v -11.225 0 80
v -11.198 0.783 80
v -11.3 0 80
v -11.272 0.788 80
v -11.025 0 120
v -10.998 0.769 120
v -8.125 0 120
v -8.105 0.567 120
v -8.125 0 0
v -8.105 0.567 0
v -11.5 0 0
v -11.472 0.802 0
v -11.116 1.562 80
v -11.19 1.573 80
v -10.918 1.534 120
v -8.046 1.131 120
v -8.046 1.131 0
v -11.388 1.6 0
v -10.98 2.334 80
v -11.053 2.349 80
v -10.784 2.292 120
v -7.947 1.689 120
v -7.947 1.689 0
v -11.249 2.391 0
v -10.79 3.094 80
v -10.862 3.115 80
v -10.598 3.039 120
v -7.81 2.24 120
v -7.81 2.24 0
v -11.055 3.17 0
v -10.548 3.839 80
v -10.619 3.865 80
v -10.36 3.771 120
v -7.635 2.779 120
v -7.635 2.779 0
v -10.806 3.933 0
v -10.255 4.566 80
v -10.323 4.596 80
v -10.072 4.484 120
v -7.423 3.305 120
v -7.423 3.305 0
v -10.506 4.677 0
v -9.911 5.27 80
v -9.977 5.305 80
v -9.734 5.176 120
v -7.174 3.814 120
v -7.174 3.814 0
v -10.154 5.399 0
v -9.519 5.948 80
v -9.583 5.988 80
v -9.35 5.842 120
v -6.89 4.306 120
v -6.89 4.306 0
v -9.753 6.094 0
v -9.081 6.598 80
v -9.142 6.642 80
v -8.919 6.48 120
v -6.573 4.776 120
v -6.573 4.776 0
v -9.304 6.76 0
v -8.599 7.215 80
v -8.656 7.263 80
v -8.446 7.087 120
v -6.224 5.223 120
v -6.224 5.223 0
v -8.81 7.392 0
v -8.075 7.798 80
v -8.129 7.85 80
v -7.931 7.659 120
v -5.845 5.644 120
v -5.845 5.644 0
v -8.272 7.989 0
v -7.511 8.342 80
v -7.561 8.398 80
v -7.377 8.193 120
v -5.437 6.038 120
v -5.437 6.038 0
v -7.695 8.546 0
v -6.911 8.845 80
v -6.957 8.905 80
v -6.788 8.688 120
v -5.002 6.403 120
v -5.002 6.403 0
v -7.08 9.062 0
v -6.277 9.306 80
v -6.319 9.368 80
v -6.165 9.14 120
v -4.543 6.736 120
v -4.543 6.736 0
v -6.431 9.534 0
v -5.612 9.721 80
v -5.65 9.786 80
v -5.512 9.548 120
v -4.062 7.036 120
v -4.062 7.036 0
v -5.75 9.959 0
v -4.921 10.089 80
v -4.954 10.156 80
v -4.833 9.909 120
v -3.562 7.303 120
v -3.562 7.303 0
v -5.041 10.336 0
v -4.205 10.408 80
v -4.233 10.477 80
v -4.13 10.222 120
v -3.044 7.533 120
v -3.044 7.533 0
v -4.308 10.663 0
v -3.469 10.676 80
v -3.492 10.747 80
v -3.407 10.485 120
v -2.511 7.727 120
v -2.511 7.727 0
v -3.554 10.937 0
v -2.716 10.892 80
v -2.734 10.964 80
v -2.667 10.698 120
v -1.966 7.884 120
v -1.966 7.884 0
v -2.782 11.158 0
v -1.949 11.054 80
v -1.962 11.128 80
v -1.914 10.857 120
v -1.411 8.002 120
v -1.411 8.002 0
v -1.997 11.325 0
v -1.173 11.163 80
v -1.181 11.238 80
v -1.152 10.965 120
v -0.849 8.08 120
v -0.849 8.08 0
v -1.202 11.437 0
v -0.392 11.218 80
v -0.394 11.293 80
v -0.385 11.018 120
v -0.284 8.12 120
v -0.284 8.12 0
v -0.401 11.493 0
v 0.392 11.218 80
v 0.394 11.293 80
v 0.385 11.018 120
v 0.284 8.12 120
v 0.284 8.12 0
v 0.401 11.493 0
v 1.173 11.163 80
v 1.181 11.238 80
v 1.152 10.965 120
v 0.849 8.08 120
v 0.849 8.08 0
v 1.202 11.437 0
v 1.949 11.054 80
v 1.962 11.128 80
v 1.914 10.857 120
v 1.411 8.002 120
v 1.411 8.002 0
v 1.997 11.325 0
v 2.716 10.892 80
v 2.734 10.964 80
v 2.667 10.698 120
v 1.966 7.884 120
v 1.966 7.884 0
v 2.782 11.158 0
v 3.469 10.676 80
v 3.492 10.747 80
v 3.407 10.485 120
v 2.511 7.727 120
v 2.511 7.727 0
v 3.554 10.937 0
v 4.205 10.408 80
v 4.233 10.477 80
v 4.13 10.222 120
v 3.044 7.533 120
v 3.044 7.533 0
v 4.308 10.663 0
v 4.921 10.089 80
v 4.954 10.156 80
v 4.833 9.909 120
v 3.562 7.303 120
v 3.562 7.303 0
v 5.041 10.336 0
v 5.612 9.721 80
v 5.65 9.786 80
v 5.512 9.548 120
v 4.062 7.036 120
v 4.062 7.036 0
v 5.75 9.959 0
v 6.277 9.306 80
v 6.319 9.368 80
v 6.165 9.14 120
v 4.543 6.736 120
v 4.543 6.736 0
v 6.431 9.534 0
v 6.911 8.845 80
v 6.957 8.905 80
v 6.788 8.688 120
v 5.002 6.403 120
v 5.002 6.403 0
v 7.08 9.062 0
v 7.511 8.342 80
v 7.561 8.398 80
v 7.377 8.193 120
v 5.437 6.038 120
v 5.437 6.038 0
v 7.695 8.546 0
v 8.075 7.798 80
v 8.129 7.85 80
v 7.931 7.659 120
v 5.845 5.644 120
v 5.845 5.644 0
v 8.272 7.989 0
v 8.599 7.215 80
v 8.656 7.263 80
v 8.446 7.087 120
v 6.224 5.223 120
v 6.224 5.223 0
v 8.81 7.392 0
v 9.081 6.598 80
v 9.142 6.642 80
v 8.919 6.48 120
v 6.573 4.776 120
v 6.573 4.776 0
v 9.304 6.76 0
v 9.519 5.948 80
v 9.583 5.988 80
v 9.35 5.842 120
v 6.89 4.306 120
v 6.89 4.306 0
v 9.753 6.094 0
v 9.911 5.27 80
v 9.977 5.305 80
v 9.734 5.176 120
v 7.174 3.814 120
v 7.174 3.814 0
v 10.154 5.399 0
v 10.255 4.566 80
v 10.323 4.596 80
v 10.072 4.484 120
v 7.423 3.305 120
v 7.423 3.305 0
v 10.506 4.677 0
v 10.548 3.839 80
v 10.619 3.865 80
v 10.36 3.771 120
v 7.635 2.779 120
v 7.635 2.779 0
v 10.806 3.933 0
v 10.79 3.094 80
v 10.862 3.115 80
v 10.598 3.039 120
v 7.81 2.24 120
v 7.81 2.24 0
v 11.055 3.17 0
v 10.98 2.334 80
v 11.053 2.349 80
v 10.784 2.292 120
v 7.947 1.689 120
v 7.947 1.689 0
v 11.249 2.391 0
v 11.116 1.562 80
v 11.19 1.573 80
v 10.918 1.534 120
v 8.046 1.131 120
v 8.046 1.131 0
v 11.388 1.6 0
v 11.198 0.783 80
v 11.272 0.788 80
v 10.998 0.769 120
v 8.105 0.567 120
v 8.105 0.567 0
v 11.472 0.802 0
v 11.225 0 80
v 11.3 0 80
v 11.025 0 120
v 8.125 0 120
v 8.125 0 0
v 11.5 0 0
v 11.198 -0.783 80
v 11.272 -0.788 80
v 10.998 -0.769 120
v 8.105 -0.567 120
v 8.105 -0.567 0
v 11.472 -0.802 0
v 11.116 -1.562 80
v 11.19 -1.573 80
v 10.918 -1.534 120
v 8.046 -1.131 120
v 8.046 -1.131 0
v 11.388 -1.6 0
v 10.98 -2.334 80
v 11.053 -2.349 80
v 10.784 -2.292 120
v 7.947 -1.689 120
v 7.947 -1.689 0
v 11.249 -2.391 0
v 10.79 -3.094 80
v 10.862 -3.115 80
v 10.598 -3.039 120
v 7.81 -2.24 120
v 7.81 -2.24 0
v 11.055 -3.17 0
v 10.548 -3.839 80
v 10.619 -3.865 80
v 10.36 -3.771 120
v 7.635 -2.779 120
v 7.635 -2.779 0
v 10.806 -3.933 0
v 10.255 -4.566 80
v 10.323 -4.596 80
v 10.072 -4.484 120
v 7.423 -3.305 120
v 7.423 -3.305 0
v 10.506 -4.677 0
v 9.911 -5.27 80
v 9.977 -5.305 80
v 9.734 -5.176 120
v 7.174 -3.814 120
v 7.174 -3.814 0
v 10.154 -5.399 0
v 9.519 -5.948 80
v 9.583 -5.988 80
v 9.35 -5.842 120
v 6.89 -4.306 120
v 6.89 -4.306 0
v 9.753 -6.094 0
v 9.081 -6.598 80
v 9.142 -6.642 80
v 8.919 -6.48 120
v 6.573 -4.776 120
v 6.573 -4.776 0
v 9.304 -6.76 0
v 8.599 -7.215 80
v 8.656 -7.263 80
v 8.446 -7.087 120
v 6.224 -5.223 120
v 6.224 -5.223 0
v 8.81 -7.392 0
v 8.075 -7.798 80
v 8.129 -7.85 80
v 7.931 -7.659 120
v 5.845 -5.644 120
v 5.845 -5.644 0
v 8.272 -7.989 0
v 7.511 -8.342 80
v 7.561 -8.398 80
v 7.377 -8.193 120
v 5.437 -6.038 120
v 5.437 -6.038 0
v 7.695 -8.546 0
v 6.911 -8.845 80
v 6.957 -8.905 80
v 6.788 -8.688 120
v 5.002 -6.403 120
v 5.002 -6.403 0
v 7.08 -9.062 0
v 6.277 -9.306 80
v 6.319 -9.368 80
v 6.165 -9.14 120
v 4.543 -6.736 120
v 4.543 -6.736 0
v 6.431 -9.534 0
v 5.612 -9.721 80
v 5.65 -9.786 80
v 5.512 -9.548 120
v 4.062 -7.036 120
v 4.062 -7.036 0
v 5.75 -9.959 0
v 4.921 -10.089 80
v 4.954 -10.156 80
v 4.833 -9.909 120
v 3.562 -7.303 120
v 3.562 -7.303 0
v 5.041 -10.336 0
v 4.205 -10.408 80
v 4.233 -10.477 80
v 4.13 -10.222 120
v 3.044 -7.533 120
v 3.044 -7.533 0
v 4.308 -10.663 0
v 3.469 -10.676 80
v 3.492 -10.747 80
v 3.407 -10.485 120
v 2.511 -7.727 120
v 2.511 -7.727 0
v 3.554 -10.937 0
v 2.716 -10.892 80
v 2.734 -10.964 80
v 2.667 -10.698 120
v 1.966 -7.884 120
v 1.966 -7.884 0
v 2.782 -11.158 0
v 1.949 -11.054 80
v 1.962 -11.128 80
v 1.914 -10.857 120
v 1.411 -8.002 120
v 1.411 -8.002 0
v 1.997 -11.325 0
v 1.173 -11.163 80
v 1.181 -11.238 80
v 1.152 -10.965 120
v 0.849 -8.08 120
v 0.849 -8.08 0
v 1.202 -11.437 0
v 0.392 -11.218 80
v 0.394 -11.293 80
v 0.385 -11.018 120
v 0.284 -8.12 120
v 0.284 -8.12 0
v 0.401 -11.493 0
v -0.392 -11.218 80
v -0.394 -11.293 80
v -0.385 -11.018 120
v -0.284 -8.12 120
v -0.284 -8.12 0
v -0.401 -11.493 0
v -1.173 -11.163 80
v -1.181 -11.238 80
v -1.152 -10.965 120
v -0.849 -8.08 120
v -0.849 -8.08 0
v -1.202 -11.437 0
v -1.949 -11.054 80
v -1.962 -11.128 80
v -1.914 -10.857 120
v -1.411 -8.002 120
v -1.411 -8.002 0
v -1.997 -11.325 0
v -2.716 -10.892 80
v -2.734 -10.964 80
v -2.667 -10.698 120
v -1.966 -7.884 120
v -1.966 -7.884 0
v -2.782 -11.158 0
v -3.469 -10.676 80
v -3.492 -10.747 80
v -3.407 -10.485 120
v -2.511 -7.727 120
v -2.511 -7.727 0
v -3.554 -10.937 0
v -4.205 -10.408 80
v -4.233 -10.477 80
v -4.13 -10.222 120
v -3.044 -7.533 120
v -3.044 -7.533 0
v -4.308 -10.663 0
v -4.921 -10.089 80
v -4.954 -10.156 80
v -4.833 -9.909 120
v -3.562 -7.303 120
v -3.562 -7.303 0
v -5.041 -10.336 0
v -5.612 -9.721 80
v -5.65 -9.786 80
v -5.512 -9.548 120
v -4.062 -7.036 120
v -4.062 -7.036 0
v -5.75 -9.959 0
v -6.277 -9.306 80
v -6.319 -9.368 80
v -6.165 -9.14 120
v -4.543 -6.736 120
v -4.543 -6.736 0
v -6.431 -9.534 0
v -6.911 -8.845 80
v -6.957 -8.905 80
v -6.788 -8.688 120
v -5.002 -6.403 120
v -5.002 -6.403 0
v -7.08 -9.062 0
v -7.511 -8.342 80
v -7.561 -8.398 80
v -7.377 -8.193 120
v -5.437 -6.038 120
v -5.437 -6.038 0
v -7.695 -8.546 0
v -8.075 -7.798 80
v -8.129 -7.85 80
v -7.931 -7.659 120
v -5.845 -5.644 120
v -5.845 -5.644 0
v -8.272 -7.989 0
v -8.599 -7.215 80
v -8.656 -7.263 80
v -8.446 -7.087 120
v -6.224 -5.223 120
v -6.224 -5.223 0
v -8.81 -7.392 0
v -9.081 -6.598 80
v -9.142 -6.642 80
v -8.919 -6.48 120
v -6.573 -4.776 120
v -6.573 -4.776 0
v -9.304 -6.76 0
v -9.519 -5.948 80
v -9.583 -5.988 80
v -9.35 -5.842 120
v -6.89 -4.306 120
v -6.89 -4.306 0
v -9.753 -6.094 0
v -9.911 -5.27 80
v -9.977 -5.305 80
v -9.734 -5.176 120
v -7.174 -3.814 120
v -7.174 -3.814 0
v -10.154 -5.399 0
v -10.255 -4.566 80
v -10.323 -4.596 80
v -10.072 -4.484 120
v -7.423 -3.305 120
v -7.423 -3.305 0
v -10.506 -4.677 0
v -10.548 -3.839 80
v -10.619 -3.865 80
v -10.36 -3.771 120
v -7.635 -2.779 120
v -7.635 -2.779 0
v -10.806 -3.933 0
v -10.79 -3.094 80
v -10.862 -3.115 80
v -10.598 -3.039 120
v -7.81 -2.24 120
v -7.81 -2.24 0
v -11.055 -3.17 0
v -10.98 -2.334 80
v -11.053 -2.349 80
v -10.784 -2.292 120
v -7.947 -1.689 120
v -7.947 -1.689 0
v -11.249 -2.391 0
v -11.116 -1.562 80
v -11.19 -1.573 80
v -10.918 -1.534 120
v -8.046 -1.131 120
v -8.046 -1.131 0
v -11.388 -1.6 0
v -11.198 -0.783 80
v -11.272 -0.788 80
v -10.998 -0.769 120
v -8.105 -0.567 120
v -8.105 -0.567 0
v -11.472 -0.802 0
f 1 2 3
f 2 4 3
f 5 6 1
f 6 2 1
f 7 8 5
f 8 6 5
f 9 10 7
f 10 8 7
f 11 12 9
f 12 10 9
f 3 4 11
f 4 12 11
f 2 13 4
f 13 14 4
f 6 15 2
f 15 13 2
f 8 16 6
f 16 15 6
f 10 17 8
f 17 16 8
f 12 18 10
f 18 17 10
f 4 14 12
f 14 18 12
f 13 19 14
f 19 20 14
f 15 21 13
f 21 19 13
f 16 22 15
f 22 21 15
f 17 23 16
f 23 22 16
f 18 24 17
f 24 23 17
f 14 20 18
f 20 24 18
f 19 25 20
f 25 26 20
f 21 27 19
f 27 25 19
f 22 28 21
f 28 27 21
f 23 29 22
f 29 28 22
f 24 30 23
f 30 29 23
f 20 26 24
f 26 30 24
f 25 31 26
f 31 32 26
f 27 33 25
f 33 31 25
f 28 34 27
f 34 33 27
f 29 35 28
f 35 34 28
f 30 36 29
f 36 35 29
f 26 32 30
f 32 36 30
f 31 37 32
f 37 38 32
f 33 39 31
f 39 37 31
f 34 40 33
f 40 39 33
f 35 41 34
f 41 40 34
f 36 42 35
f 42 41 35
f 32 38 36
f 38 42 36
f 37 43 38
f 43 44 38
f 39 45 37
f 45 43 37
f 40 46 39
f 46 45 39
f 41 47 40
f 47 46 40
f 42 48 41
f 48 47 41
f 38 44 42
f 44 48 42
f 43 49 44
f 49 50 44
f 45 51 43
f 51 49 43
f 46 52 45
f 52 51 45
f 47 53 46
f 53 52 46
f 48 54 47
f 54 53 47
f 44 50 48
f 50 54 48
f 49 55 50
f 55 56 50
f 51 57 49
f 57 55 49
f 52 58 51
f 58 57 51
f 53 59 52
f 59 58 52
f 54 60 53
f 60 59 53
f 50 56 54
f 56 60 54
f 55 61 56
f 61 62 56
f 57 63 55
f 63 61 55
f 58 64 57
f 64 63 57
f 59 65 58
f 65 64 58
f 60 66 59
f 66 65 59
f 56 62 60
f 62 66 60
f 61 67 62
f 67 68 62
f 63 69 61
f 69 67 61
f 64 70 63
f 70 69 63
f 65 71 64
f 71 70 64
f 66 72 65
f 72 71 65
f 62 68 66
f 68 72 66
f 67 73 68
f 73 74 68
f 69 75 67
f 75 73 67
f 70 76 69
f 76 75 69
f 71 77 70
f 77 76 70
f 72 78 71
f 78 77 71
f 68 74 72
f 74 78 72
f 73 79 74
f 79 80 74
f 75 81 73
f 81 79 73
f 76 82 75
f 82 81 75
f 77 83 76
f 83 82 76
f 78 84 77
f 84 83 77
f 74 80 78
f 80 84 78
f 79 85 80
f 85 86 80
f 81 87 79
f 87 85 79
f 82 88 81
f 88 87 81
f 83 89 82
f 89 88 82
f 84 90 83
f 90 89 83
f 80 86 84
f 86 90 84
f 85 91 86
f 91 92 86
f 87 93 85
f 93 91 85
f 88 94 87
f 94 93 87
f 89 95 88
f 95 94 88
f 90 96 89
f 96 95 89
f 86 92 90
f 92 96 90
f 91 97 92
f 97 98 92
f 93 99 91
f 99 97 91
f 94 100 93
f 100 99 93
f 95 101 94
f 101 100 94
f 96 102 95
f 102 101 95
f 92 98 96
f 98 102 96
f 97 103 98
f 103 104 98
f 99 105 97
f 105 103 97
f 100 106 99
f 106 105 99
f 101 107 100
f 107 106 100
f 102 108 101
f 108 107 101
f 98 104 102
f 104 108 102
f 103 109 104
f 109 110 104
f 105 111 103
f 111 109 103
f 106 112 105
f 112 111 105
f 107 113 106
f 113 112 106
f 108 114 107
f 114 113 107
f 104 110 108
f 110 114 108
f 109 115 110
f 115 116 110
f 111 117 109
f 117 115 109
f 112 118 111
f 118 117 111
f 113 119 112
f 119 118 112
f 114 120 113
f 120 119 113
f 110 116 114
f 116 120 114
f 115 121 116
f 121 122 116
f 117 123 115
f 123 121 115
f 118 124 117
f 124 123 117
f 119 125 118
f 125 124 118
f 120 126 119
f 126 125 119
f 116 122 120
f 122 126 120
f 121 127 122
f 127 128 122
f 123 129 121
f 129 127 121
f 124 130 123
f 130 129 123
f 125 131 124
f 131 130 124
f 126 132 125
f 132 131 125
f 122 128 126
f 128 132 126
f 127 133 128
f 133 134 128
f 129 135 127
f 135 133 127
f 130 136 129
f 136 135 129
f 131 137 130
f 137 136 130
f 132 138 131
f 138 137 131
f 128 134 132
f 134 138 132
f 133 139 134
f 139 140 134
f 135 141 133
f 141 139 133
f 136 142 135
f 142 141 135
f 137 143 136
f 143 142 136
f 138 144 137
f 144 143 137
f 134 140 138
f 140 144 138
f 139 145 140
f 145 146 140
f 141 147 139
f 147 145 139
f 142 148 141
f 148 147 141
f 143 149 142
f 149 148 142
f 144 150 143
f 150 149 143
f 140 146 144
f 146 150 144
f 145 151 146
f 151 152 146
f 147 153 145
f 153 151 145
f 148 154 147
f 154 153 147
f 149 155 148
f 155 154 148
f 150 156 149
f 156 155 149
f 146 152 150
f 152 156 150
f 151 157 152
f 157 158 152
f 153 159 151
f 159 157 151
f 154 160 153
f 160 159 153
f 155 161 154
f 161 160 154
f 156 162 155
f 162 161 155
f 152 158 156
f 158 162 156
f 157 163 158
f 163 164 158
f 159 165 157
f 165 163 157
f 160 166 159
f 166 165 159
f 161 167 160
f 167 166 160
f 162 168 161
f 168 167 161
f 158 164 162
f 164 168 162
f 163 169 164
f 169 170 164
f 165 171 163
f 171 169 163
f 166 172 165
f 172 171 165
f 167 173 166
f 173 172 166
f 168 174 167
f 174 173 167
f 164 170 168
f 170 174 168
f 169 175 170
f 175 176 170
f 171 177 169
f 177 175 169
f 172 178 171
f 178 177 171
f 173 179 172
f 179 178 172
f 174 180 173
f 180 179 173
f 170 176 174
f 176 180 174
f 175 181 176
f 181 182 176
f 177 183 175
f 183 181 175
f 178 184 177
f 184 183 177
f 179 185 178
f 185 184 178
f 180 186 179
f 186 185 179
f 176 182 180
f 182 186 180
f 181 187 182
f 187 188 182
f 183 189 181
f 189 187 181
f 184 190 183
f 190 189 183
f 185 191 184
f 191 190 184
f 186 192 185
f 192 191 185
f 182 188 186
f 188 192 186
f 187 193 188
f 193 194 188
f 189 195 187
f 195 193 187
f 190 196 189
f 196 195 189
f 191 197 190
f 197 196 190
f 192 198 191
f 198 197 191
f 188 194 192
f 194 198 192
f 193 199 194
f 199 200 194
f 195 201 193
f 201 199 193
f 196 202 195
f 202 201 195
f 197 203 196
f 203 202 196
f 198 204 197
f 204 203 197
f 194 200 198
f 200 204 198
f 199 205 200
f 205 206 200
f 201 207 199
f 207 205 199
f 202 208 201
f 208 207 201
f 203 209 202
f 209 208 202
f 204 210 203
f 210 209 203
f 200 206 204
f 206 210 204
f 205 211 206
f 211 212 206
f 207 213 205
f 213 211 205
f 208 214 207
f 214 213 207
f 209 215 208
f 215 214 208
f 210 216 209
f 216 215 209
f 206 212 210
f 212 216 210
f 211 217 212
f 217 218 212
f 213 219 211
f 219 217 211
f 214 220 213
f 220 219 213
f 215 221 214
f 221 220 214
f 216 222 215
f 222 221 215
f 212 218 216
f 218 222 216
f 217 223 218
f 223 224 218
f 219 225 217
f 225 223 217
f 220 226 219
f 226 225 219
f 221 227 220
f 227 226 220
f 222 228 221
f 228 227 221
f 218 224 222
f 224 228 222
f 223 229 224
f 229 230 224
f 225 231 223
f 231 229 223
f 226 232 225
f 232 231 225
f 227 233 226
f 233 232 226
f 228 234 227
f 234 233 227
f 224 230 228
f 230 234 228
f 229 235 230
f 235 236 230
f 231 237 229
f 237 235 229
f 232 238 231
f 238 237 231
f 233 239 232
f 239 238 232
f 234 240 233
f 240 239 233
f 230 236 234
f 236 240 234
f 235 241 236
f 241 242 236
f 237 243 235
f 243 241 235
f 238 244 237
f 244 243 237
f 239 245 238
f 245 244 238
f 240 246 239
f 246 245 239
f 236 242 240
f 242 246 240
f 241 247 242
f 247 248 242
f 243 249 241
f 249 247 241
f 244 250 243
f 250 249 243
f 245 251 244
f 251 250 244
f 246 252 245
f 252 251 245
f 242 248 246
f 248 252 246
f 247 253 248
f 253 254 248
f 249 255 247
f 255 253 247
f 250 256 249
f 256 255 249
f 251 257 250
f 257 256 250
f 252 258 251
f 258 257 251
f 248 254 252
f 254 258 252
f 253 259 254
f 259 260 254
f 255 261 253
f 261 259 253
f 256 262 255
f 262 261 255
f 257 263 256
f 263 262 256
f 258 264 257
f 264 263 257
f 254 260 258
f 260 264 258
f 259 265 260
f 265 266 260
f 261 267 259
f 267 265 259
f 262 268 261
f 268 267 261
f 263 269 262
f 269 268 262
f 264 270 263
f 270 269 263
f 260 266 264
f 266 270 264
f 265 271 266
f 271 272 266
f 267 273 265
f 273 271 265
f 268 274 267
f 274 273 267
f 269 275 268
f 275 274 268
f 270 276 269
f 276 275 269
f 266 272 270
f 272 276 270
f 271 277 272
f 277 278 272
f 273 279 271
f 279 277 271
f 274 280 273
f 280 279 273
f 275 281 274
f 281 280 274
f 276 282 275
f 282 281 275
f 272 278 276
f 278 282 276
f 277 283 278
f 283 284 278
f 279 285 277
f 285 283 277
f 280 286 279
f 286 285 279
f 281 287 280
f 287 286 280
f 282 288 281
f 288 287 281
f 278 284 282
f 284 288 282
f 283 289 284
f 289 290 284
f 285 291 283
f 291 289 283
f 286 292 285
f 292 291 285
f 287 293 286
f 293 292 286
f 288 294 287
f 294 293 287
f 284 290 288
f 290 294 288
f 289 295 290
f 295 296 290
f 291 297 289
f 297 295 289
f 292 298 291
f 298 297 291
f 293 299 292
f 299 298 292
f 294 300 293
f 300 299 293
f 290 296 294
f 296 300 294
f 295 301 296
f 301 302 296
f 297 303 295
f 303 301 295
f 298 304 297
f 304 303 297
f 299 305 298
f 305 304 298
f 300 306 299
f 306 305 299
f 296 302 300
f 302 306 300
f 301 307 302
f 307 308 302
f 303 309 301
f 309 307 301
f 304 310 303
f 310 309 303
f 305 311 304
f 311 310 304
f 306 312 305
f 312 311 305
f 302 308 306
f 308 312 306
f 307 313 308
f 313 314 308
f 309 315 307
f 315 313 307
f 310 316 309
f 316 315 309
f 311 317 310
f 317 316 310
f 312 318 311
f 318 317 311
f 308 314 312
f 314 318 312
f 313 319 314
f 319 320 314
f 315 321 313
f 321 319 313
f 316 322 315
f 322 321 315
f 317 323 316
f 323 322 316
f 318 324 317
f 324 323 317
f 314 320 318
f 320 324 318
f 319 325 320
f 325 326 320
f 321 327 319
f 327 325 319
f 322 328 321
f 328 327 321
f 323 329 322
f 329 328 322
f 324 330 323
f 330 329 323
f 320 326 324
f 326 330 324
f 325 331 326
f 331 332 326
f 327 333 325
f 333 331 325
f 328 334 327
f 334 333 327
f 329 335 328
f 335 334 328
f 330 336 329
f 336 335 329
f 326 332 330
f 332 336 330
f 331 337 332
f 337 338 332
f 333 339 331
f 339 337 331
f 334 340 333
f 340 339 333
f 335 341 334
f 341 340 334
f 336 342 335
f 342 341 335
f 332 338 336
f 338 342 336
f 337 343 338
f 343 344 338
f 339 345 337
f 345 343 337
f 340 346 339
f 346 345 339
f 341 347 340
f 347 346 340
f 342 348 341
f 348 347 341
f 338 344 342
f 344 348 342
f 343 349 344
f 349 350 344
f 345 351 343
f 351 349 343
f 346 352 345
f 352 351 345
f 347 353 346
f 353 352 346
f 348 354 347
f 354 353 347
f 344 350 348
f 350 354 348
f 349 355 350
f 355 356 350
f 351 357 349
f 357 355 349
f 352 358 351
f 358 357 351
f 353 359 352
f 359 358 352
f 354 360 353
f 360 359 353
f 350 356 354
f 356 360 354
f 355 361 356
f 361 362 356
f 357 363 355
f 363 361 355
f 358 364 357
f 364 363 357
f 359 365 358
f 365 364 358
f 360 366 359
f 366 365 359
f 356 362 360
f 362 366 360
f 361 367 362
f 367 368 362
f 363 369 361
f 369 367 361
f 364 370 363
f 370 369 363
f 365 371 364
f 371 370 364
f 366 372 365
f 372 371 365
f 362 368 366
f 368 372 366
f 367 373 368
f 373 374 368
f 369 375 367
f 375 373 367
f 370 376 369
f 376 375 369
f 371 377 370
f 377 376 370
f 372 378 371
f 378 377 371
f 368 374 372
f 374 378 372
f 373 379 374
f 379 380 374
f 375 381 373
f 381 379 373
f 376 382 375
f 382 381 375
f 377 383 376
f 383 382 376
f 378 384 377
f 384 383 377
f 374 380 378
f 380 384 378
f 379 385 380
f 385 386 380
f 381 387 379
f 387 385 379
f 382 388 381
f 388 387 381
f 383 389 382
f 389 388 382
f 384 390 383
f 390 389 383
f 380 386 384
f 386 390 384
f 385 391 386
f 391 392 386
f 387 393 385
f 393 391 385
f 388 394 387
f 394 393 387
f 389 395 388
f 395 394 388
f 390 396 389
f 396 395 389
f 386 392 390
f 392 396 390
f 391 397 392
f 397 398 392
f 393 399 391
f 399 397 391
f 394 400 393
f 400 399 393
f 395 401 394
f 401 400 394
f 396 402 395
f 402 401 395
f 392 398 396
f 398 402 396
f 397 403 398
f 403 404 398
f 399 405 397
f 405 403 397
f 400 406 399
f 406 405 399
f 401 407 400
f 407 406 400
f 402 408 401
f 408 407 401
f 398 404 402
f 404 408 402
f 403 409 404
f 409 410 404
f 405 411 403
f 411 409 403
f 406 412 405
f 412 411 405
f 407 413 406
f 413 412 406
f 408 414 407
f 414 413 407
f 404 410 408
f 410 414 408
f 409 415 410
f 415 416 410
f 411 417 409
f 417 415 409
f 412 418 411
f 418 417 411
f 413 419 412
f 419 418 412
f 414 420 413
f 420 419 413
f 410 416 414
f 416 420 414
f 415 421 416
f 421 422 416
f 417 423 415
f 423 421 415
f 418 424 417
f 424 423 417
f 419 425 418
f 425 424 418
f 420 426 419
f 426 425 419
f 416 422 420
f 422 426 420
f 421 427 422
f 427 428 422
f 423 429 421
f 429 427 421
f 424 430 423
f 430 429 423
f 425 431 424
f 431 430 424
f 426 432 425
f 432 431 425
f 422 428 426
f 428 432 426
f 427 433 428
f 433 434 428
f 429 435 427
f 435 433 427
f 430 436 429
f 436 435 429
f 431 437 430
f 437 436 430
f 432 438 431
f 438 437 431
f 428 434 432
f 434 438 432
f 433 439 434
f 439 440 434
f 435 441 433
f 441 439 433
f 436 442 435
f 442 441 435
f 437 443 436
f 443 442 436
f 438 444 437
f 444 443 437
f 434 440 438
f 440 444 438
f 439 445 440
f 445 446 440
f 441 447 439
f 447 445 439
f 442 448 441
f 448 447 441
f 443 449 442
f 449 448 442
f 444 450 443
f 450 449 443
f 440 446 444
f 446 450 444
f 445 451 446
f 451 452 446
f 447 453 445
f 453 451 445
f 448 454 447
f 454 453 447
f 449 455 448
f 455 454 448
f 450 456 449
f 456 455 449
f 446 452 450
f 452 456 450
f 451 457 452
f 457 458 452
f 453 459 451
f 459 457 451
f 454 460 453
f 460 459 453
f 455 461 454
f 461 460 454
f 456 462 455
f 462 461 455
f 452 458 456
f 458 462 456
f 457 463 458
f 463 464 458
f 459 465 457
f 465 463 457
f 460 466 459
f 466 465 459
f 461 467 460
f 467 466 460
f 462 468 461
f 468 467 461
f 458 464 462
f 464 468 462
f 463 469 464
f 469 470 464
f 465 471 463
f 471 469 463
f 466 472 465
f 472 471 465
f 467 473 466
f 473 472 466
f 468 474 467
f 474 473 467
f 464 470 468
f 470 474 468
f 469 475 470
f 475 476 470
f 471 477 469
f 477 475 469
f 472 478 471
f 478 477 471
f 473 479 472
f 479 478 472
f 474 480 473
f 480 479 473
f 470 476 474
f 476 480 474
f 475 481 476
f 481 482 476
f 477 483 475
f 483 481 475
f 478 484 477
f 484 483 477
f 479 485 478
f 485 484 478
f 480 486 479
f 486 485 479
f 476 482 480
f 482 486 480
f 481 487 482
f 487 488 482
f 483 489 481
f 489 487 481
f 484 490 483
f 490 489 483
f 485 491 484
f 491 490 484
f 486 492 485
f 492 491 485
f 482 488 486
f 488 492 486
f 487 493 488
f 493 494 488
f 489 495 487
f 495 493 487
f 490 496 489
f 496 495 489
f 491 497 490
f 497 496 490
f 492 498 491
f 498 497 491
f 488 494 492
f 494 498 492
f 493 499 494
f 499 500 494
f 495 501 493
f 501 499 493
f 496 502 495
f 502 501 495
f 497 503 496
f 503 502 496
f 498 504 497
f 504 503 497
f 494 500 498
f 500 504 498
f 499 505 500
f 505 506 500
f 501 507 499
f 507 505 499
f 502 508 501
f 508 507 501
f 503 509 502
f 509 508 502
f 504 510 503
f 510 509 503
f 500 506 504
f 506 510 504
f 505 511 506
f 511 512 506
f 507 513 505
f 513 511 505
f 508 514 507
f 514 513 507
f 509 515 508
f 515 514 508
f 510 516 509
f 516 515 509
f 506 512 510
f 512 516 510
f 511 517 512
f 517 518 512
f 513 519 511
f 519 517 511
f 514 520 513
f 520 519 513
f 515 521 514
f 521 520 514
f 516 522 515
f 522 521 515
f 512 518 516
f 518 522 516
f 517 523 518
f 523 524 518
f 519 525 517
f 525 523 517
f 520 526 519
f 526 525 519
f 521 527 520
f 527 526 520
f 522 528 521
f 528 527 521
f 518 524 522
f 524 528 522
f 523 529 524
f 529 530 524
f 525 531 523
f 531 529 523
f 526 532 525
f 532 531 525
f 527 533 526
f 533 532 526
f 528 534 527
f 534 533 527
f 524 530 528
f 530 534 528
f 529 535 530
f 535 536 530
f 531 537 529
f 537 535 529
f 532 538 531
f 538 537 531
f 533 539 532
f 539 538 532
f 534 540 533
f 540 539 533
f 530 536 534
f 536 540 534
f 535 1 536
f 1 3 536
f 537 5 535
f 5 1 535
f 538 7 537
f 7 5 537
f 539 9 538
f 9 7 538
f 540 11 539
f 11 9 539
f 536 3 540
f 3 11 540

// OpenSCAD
// Bushing inner diameter
bd = 22.25;
// Teeth inner/lower diameter
td = 22.8;
// Bushing section length
bl = 40;
// Teeth section length
tl = 80;
// Thickness
thk = 3;
// Taper
tap = 0.1;

br = bd / 2;
tr = td / 2;

color("green")
rotate_extrude($fn = 90)
        polygon(points=[
            [tr + tap,0],  // Teeth end, lower OD
            [tr - tap,tl], // Teeth end, upper OD + length
            [br + tap,tl],  // Bushing end, lower OD
            [br - tap,tl+bl], // Bushing end, upper OD + length
            [br - thk,tl+bl], // Bushing end, upper ID
            [br - thk,0], // Teeth end, lower ID
        ]);
